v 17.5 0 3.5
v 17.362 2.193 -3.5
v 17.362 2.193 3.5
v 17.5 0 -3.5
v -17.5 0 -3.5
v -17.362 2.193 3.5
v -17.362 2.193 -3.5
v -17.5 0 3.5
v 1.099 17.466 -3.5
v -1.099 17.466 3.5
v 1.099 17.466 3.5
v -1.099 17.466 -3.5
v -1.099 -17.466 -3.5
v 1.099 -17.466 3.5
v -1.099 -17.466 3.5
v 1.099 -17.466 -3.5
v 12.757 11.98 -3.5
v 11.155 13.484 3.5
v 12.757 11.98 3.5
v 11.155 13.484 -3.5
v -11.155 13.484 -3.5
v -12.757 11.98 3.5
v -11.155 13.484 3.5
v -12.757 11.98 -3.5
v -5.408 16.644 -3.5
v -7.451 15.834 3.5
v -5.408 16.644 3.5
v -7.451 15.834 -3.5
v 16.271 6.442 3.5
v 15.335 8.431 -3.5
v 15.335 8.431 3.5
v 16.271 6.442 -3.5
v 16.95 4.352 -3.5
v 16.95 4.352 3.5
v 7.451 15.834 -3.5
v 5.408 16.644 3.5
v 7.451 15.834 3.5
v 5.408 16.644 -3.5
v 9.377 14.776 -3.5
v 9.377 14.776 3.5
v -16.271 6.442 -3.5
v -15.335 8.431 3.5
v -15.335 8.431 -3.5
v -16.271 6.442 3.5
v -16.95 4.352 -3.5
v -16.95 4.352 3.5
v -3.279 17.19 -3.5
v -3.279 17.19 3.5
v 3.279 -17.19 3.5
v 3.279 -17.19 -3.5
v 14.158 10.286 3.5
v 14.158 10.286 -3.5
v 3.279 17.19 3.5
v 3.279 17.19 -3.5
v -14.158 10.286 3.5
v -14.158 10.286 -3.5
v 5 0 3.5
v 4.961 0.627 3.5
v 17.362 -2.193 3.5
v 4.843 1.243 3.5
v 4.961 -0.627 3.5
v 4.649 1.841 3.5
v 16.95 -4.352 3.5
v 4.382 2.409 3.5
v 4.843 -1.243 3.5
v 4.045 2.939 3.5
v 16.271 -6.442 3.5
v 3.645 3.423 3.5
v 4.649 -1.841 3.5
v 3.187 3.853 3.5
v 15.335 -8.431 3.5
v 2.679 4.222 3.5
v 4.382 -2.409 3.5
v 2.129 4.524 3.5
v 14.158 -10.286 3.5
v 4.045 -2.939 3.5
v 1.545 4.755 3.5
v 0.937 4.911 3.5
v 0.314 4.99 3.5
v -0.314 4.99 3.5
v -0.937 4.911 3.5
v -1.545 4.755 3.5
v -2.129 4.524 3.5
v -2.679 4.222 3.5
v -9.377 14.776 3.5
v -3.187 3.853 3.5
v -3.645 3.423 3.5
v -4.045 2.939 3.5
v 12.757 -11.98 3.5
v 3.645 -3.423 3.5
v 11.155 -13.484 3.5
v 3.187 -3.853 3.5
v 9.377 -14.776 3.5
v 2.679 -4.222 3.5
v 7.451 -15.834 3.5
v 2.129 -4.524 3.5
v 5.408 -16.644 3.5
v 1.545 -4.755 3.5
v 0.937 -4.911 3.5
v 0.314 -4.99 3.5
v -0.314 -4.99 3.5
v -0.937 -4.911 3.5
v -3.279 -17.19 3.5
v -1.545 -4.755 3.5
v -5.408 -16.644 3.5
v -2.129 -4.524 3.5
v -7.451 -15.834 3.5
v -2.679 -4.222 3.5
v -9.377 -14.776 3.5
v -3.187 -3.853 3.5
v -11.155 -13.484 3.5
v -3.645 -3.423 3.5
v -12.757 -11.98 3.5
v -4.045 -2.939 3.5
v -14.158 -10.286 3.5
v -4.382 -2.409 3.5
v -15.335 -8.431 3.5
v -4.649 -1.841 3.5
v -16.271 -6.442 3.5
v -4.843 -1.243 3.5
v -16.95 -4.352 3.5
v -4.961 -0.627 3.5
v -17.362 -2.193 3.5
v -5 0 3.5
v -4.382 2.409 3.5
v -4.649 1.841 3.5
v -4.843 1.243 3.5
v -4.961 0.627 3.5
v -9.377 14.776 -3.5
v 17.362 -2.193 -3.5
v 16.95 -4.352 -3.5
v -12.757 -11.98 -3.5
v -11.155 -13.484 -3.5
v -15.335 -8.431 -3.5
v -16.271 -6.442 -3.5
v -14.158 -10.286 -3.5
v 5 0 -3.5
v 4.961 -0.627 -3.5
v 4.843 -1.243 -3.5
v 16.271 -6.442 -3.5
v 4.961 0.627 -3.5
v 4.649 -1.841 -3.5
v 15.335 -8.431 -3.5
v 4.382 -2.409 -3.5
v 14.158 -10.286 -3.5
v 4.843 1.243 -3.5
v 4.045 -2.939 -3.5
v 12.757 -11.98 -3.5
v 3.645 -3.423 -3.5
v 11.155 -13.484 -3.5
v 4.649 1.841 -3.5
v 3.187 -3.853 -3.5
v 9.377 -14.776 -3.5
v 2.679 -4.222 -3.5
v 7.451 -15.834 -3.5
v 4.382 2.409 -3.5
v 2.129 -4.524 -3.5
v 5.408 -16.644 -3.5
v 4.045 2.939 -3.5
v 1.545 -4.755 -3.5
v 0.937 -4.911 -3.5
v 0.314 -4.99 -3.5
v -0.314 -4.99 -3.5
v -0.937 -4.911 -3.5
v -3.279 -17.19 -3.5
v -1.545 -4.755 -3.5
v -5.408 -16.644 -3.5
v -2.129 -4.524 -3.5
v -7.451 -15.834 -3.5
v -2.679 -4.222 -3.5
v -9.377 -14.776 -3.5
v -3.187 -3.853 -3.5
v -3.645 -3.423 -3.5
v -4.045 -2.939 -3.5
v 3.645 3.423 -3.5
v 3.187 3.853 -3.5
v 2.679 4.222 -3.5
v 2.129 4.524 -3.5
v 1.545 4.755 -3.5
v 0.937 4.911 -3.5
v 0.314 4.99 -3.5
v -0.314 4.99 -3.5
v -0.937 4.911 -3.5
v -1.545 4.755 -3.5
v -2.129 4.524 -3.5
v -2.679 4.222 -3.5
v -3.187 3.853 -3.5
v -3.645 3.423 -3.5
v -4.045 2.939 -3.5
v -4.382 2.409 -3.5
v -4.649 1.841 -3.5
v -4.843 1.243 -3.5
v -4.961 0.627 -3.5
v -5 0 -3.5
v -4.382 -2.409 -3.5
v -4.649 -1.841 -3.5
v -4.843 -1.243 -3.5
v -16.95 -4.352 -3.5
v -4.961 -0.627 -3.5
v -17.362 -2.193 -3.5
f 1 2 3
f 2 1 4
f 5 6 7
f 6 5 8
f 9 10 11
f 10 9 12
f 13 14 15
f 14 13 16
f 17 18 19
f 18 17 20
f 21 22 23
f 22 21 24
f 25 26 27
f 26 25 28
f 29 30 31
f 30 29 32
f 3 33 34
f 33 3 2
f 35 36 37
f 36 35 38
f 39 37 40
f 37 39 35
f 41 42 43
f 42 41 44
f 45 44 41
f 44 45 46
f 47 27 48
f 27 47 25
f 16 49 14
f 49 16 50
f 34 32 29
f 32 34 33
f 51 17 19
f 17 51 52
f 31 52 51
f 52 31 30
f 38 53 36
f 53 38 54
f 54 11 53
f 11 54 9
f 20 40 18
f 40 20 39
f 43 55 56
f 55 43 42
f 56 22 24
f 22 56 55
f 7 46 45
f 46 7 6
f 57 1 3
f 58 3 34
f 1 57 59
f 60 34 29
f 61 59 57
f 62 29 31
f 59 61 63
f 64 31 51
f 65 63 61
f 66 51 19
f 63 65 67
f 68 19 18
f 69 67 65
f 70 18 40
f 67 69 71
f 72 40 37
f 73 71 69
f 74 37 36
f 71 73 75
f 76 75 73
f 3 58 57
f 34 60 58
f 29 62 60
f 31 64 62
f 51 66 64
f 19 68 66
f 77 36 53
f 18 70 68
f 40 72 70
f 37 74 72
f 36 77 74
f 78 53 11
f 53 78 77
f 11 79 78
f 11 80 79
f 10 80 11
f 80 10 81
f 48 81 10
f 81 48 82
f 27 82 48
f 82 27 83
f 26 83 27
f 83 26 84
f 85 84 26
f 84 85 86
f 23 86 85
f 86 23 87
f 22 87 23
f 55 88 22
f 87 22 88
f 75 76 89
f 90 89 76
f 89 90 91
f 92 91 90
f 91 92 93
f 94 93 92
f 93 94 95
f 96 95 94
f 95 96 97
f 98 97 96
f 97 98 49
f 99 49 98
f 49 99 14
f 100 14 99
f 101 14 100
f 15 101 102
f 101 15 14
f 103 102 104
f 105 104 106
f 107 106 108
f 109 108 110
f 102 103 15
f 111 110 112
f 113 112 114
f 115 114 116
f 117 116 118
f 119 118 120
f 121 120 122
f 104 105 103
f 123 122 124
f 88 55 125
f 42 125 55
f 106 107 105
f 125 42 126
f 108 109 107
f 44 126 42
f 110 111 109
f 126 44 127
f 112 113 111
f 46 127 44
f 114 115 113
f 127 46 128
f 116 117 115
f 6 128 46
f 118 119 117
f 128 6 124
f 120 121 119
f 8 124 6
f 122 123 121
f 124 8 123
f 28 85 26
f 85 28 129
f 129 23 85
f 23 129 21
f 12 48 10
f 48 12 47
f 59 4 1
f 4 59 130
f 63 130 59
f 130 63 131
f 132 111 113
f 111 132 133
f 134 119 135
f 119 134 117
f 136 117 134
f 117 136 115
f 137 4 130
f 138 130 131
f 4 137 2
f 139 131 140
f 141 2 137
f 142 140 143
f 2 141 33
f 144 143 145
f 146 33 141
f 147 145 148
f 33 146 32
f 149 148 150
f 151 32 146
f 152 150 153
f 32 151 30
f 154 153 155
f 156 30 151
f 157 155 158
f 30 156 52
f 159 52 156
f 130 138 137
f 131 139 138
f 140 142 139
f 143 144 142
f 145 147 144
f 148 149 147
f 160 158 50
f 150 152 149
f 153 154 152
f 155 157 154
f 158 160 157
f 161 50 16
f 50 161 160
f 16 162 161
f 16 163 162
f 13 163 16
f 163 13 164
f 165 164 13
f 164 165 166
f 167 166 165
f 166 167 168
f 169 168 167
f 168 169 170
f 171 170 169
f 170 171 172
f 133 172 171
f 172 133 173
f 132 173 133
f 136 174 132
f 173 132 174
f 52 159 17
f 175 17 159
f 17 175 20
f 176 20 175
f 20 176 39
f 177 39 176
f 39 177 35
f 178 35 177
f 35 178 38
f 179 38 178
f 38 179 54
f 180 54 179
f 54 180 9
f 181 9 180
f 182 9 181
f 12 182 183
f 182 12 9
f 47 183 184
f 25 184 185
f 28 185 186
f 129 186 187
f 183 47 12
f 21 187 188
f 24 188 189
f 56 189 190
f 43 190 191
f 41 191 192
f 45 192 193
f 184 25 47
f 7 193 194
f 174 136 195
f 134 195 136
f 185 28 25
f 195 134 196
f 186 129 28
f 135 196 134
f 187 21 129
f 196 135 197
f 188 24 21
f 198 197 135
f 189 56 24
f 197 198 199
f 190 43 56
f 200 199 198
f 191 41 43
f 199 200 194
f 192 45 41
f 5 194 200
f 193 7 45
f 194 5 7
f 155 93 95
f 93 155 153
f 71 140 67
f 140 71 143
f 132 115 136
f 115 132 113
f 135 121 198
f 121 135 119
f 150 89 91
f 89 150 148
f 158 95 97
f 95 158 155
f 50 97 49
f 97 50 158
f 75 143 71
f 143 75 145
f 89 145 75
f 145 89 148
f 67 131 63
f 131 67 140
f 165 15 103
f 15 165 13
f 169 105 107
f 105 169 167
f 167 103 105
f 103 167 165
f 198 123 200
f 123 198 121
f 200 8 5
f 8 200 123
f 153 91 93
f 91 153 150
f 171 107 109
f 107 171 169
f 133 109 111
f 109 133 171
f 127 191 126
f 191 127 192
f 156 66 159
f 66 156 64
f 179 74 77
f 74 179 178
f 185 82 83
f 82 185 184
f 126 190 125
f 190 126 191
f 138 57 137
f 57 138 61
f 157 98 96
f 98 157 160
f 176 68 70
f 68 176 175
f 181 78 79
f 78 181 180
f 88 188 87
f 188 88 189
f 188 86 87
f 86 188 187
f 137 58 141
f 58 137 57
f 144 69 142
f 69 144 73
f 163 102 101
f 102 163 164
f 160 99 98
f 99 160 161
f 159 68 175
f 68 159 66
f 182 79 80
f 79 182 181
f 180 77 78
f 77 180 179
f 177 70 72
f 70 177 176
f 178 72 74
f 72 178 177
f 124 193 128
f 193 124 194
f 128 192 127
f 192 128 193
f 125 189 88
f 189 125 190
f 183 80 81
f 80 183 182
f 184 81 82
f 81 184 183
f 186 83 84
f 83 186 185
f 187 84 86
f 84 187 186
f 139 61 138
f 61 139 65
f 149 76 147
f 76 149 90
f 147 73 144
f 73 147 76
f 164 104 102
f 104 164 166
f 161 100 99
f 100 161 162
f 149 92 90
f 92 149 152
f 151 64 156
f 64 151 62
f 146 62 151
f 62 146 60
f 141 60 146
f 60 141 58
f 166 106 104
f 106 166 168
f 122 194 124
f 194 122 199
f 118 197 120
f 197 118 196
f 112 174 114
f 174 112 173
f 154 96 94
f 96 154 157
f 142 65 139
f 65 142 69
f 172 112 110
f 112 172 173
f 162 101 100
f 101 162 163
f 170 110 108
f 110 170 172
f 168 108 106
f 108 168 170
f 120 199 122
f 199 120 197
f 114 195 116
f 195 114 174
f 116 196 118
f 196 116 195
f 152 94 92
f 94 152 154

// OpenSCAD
$fn = 50;


difference() {
	union() {
		translate(v = [0, 0, -3.5000000000]) {
			cylinder(h = 7, r = 17.5000000000);
		}
	}
	union() {
		translate(v = [0, 0, -100.0000000000]) {
			cylinder(h = 200, r = 5);
		}
	}
}
